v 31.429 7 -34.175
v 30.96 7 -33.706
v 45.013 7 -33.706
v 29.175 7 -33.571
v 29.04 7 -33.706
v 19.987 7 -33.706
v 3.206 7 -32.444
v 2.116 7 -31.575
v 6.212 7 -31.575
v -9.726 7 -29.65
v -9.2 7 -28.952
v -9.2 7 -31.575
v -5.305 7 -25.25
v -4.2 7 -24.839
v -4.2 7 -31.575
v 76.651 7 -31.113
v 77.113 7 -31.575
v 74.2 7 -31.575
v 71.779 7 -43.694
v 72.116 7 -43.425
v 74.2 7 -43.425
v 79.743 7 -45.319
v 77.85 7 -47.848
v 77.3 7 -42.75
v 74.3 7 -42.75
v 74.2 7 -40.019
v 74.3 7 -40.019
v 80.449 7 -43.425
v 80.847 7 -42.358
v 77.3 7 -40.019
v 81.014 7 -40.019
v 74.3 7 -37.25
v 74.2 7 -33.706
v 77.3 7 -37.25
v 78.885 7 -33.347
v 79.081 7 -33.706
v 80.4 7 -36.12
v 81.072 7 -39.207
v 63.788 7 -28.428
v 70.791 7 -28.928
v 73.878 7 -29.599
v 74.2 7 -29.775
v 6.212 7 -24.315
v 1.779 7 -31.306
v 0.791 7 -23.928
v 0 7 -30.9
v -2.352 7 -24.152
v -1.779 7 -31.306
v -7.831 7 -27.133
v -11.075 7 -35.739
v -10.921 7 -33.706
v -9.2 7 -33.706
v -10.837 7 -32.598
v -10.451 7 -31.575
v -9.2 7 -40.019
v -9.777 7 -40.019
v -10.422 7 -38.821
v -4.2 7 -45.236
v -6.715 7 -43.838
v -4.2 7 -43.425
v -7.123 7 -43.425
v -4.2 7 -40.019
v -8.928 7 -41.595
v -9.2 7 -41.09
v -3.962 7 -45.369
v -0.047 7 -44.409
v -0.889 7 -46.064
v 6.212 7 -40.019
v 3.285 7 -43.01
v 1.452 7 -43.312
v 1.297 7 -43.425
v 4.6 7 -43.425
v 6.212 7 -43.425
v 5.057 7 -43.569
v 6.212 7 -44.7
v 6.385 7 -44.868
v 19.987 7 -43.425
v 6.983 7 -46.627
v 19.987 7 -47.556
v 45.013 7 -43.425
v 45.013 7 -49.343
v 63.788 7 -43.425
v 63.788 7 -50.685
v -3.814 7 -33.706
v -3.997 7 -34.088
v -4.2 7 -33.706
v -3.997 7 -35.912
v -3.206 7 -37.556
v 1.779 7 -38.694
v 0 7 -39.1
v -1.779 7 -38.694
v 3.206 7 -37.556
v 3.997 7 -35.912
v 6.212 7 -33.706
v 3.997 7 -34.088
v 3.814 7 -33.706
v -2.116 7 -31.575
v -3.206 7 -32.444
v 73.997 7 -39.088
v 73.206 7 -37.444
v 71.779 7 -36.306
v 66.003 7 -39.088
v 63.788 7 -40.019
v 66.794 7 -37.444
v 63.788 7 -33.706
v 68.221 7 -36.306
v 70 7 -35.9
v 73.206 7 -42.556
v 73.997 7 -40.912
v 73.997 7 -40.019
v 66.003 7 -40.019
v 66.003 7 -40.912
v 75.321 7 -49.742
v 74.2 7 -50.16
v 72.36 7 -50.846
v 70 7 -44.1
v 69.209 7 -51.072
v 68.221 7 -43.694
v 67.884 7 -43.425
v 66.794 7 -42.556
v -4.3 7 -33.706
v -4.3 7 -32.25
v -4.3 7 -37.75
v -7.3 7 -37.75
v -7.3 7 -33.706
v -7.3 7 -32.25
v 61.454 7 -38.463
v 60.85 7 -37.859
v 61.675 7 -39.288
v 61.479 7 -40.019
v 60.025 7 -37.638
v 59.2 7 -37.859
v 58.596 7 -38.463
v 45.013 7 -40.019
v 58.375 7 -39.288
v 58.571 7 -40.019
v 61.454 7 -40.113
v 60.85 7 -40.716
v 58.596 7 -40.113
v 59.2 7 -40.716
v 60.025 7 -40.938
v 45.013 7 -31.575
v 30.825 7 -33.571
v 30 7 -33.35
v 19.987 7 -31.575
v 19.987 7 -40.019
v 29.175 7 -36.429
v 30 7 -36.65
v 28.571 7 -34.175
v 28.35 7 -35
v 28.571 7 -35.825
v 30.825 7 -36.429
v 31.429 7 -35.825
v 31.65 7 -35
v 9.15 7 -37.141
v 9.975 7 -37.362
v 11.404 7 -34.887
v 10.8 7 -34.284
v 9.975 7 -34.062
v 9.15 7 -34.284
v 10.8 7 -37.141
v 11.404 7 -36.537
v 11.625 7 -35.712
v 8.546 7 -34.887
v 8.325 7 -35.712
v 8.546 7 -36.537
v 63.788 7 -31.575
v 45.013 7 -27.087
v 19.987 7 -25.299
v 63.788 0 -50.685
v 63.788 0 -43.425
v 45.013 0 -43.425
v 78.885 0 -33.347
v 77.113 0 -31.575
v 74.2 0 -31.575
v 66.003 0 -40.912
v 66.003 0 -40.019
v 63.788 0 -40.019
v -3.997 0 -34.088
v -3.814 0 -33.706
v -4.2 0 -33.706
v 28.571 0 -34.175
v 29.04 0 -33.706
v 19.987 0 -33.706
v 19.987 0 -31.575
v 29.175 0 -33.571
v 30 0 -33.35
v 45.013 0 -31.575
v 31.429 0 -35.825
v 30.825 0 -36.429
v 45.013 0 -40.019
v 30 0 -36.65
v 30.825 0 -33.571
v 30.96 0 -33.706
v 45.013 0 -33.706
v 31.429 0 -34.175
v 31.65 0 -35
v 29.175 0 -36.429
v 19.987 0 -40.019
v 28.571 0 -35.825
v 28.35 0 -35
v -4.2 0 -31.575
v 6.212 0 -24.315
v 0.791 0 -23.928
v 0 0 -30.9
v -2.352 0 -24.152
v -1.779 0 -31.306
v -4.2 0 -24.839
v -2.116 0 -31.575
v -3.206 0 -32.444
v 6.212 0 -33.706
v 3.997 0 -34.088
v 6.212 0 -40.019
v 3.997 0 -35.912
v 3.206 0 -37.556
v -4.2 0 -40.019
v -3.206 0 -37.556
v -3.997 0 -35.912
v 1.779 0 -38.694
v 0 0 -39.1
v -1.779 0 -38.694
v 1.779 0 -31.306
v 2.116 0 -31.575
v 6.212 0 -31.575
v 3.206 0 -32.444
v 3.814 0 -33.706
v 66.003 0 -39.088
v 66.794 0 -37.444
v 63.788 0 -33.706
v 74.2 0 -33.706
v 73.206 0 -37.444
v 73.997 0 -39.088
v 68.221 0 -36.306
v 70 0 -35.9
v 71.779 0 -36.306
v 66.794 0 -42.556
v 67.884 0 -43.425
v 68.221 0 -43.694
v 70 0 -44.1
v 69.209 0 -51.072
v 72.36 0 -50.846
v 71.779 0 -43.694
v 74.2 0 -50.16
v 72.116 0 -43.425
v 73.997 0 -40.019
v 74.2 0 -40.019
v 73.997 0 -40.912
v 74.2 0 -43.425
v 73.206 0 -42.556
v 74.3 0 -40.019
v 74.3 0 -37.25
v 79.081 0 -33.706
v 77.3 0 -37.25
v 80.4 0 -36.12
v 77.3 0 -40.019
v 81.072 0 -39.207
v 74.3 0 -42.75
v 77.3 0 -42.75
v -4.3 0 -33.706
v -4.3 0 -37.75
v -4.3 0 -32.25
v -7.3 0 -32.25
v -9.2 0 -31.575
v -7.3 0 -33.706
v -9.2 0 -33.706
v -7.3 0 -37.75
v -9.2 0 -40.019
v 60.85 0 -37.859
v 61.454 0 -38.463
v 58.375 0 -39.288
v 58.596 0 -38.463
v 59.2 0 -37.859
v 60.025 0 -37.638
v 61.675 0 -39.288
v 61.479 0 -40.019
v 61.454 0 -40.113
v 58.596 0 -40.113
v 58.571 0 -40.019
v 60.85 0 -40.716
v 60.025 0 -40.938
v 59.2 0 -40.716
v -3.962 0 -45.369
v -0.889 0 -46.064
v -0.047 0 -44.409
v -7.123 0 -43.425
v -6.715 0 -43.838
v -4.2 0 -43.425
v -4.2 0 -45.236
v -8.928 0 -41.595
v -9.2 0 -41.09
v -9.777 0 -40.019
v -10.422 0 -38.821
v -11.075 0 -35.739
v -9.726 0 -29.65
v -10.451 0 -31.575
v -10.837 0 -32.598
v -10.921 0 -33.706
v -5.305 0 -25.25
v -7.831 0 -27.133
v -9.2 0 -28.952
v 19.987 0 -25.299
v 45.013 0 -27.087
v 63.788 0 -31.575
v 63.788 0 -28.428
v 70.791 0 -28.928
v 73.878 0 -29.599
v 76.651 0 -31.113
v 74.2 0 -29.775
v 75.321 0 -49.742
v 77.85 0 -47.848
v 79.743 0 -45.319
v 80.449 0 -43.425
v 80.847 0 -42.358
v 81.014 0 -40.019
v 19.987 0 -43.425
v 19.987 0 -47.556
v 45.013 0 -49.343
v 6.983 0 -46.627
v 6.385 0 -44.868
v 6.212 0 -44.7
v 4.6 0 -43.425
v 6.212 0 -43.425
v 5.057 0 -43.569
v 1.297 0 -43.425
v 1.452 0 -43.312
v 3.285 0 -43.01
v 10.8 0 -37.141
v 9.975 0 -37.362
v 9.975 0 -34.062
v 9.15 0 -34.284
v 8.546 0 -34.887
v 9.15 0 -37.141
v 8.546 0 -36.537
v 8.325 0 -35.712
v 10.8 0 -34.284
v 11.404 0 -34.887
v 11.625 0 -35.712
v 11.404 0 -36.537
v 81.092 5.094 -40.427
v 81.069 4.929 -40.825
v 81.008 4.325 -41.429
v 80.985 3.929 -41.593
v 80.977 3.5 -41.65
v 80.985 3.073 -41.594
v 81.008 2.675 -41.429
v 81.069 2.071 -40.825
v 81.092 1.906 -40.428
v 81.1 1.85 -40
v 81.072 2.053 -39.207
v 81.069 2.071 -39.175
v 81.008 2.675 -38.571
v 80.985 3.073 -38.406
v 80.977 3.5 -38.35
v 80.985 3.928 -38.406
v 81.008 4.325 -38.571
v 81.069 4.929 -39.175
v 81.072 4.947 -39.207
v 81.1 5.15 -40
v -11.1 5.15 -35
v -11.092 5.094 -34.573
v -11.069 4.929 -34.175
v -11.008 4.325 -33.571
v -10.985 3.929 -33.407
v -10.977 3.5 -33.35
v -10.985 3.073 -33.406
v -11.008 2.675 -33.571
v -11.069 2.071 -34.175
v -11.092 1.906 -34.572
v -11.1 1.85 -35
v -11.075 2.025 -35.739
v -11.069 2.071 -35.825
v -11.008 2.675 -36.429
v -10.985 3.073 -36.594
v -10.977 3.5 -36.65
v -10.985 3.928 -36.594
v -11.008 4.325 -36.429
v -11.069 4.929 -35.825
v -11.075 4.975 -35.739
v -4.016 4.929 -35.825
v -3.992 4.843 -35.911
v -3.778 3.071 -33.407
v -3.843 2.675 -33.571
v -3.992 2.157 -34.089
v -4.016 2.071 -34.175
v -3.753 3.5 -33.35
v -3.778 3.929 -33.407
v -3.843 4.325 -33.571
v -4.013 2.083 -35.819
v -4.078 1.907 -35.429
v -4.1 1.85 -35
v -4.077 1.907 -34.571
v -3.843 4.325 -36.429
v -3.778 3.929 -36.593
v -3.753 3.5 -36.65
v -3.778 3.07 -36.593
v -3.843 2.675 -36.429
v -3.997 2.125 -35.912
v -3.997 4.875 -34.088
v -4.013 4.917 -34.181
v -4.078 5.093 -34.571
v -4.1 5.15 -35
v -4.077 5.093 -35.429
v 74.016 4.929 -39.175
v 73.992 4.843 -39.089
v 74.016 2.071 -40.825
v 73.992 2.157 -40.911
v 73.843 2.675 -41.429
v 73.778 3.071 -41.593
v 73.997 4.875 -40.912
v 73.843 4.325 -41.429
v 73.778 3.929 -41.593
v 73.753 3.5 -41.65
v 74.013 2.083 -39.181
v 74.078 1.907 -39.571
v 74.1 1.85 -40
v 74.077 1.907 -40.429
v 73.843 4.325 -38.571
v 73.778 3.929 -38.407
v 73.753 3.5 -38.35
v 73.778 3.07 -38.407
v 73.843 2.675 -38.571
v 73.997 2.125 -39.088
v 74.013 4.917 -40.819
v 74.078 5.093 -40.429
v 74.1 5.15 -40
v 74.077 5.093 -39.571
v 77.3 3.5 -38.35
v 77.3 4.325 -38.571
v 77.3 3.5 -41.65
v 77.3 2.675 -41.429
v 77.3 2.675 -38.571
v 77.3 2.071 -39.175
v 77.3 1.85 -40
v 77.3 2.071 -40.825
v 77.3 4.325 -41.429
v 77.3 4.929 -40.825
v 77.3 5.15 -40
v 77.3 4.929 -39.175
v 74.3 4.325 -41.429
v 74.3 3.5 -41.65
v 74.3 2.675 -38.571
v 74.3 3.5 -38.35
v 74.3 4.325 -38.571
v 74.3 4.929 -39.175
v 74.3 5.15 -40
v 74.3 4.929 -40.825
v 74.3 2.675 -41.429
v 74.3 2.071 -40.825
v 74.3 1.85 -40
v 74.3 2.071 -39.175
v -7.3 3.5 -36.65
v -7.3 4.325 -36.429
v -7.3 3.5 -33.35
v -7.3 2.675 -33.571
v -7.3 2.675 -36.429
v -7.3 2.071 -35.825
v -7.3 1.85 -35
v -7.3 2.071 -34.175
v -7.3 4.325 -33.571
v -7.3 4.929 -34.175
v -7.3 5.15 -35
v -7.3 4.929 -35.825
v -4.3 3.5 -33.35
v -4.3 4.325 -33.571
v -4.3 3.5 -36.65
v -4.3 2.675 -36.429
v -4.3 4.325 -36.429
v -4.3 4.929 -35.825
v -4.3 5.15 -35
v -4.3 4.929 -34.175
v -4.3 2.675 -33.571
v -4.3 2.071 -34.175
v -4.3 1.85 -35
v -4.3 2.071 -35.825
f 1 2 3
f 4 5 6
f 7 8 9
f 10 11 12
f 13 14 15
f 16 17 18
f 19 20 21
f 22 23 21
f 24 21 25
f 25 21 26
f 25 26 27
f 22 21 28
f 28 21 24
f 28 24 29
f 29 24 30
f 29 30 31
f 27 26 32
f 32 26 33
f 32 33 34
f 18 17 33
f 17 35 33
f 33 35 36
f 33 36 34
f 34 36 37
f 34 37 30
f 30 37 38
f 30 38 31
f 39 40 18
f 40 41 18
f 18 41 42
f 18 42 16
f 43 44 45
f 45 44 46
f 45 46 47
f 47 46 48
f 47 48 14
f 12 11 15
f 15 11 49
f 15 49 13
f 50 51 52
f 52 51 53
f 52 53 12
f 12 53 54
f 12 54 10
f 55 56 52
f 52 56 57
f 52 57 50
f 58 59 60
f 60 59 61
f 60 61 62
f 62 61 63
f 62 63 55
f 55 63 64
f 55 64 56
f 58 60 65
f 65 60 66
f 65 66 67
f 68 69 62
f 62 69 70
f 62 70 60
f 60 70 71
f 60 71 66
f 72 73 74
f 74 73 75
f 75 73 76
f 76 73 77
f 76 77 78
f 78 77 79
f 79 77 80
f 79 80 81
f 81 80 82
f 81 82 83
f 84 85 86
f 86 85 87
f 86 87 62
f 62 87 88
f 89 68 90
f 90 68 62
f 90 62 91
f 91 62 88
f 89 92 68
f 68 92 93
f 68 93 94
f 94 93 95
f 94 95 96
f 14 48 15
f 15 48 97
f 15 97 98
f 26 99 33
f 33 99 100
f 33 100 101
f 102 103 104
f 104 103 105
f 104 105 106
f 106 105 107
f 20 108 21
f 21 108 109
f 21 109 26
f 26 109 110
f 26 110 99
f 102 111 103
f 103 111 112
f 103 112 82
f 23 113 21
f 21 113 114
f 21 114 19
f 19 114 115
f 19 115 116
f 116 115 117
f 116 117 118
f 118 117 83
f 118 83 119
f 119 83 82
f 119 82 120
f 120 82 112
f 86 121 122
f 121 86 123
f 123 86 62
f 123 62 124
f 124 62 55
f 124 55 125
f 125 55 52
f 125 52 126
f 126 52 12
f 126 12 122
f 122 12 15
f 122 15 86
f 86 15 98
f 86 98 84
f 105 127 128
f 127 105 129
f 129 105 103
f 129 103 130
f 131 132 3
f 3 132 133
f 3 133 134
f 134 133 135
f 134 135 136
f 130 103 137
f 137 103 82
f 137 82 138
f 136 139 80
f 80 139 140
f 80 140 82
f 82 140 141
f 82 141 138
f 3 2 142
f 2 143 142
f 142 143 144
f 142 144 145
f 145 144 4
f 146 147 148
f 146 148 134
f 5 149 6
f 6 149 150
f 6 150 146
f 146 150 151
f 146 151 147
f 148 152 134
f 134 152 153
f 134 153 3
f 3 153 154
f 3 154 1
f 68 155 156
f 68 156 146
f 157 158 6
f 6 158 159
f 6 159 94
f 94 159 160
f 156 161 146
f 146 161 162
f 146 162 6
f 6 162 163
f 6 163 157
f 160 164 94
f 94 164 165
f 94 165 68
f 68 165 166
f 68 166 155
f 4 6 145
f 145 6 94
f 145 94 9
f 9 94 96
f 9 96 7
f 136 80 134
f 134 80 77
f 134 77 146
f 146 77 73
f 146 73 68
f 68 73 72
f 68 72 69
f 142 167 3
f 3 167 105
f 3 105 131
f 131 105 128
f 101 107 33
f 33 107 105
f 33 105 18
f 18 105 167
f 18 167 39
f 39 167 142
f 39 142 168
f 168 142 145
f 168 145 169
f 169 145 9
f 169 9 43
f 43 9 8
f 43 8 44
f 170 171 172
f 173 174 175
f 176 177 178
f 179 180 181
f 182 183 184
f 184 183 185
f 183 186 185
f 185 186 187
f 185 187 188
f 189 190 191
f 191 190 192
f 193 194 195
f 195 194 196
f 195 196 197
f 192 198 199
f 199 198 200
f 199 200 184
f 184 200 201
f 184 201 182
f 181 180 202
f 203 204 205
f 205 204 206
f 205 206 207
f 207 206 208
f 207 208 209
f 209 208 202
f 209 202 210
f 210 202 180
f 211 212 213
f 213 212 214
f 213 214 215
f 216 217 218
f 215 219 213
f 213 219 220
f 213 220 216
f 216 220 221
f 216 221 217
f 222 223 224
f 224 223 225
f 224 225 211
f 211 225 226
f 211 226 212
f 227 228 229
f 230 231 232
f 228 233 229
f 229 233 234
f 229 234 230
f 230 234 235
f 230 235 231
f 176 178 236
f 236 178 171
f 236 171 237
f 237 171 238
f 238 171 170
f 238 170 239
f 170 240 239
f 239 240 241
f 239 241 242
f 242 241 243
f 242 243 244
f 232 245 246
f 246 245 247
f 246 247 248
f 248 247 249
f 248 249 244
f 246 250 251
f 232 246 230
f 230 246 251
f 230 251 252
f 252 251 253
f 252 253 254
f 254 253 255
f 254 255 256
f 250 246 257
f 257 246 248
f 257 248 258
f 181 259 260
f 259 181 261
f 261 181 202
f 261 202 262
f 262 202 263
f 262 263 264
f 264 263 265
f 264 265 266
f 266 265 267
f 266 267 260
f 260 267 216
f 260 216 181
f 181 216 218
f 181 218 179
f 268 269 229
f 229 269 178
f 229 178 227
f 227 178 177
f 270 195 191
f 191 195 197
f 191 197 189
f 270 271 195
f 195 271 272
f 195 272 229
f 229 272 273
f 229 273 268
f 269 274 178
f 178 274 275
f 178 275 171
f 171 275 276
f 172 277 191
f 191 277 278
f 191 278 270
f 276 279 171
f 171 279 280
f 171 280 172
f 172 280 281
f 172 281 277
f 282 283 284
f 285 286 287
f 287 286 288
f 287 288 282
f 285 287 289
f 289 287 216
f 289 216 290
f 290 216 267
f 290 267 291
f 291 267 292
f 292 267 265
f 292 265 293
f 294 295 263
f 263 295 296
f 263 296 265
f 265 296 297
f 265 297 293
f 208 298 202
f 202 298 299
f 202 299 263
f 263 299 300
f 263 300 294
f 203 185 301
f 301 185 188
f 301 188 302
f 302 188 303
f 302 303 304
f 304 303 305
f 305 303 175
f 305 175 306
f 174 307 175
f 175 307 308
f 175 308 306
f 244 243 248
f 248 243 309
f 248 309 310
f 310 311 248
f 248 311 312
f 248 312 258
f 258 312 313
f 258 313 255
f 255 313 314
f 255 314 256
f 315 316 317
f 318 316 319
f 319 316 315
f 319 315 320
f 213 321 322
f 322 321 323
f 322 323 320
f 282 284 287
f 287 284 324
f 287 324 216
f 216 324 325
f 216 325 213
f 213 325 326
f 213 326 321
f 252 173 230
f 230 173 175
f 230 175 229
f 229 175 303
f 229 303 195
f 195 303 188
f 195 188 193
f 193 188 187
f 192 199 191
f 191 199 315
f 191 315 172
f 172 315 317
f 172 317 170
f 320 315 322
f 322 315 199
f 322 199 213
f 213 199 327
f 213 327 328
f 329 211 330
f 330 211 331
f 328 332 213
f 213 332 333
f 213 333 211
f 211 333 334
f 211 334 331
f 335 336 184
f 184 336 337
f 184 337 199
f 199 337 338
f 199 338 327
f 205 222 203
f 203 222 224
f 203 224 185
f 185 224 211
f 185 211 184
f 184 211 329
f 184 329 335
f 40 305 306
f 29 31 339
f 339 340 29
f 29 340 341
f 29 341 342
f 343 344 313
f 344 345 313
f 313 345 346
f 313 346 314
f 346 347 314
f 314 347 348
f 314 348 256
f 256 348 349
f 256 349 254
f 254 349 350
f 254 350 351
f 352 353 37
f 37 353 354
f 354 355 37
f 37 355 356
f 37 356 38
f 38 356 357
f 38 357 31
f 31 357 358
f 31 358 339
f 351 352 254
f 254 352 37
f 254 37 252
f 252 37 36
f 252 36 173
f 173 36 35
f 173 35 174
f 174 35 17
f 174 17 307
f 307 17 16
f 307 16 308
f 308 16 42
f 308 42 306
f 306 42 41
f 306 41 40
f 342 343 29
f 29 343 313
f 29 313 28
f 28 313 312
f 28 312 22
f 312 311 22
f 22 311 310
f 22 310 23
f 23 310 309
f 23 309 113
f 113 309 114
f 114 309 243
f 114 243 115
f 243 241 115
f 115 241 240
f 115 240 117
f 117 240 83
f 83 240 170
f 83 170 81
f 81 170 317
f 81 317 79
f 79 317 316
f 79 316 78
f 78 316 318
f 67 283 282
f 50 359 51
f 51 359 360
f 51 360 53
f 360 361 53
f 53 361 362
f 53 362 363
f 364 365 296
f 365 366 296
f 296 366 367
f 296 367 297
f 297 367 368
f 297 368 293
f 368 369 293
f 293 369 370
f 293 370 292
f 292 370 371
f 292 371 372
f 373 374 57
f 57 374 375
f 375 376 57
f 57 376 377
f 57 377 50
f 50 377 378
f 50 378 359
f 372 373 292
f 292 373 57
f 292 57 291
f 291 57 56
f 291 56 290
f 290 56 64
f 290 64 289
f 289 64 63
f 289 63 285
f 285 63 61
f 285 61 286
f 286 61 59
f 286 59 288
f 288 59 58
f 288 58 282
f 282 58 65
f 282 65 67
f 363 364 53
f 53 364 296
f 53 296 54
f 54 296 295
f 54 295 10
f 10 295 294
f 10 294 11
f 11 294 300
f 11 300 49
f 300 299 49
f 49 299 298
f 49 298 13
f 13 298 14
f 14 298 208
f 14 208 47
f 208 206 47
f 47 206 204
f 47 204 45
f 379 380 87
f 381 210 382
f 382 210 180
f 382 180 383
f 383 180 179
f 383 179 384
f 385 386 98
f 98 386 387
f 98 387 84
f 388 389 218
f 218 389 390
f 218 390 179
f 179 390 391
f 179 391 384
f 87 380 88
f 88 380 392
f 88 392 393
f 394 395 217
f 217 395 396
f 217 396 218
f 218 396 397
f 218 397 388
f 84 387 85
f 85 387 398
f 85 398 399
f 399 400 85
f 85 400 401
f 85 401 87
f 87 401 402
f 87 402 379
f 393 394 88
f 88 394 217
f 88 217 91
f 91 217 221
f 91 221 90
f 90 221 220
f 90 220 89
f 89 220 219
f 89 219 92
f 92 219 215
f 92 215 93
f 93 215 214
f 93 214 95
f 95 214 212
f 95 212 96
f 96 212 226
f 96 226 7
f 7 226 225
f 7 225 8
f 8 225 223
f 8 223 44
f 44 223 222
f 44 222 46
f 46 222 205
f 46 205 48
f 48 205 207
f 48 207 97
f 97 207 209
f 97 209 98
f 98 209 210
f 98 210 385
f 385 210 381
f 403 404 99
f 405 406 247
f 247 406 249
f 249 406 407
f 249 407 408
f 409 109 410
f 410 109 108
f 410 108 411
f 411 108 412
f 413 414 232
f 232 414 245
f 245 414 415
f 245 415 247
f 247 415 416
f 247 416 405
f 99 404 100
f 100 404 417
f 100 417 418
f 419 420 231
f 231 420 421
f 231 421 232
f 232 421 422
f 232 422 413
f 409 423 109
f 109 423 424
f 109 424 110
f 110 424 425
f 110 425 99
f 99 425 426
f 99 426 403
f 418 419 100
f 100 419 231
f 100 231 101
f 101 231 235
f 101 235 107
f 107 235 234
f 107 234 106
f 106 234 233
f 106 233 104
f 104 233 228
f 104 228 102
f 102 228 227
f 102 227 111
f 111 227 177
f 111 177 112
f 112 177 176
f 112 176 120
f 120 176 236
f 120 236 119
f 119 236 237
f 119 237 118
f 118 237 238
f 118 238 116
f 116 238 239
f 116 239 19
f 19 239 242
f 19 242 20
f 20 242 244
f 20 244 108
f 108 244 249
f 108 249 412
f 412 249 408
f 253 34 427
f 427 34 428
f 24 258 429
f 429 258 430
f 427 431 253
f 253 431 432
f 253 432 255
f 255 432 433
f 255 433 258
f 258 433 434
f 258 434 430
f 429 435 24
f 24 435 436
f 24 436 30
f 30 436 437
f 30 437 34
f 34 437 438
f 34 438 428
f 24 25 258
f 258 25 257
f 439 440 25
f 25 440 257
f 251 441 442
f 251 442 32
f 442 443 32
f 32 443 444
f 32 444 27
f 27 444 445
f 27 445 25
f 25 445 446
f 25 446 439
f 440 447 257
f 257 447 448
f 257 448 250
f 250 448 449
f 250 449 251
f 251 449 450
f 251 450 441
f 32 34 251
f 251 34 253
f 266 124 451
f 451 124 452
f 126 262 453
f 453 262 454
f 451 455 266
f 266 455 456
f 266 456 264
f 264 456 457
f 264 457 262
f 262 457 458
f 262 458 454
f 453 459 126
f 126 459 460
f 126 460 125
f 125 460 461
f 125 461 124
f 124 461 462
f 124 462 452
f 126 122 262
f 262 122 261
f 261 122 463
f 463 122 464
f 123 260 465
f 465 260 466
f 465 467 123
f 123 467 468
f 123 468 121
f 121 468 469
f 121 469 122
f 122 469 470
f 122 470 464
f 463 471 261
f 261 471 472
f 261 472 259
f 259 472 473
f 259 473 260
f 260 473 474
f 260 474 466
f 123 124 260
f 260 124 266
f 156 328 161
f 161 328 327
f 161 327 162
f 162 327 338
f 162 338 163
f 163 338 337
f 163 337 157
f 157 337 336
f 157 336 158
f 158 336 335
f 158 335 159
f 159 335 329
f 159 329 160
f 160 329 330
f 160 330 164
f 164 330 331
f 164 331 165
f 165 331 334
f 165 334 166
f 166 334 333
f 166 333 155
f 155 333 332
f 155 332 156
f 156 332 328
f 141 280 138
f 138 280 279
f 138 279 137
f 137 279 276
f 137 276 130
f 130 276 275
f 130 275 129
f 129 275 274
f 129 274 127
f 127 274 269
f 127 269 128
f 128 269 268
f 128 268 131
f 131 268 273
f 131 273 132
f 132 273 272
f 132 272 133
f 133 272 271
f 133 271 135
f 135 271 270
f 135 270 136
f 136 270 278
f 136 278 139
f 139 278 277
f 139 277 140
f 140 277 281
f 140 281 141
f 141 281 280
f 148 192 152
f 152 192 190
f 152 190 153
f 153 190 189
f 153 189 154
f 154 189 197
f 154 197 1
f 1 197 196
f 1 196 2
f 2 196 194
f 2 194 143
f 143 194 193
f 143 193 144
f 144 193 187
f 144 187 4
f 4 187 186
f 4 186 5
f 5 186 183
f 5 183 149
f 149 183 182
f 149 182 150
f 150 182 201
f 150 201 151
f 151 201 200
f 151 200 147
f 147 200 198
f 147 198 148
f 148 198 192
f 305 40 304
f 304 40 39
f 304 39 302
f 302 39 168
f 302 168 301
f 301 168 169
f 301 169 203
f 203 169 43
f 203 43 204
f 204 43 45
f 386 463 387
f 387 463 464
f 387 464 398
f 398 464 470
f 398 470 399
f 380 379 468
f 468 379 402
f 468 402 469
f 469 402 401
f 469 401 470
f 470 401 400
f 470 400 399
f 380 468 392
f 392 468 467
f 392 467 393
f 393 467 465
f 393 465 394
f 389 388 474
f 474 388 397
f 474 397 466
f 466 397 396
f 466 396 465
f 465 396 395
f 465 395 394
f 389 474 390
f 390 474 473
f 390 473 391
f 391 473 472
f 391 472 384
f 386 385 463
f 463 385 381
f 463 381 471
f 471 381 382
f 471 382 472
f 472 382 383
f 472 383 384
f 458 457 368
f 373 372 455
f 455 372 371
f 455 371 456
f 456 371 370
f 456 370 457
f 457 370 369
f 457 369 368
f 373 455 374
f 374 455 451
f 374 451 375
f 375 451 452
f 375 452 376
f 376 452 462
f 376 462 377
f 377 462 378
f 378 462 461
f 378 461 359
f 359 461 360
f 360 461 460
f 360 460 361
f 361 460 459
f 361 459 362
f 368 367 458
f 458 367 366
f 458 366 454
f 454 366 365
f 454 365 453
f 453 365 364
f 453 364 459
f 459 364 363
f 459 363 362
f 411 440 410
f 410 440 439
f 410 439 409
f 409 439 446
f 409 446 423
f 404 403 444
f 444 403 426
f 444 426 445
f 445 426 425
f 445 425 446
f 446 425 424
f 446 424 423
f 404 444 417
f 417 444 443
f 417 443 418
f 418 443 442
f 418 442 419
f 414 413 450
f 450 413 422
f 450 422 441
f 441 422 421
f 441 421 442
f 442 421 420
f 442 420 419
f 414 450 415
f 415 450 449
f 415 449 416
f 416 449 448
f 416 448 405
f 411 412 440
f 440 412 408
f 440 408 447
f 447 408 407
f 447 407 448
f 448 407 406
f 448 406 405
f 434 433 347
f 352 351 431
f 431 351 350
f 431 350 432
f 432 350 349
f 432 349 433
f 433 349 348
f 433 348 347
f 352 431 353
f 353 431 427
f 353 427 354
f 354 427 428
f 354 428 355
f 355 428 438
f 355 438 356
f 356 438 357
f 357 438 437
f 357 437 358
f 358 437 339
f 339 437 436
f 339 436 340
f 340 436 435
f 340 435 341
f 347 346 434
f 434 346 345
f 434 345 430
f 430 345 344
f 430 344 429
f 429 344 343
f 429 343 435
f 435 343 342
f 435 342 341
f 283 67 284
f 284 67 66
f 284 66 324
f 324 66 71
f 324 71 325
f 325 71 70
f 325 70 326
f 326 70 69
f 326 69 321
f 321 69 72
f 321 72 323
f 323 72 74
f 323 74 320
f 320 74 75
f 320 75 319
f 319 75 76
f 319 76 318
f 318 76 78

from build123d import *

# Parameters (mm, degrees)
ESBO_O2_R                  = 4.1
ESBO_O2_R_2                = 1.65
ESBO_O2_W                  = 3
ESBO_O2_H                  = 5.5
RESSALTO_EXTRUS_O1_DEPTH   = 7
ESBO_O3_W                  = 117.766713874
ESBO_O3_H                  = 105.694955048
CORTE_EXTRUS_O1_DEPTH      = 1
CORTE_EXTRUS_O1_DEPTH_BACK = 8
ESBO_O4_R                  = 1.65
CORTE_EXTRUS_O2_DEPTH      = 7.8
CORTE_EXTRUS_O2_DEPTH_BACK = 2
ESBO_O5_R                  = 1.65
CORTE_EXTRUS_O3_DEPTH      = 10
CORTE_EXTRUS_O3_DEPTH_BACK = 2
ESBO_O6_R                  = 4
CORTE_EXTRUS_O4_DEPTH      = 1.0000001
CORTE_EXTRUS_O4_DEPTH_BACK = 8.0000001


with BuildPart() as part:
    # Esboço2 → Ressalto-extrusão1 (new body)
    with BuildSketch(Plane(origin=(0, 0, 0), x_dir=(1, 0, 0), z_dir=(0, 1, 0))):
        with BuildLine():
            Line((-0.790842255, 46.071791568), (69.209157745, 51.071791568))
            ThreePointArc((69.209157745, 51.071791568), (77.564114323, 48.123679863), (81.1, 40))
            Line((81.1, 40), (81.1, -40))
            ThreePointArc((81.1, -40), (77.564114323, -48.123679863), (69.209157745, -51.071791568))
            Line((69.209157745, -51.071791568), (-0.790842255, -46.071791568))
            ThreePointArc((-0.790842255, -46.071791568), (-8.123679863, -42.564114323), (-11.1, -35))
            Line((-11.1, -35), (-11.1, 35))
            ThreePointArc((-11.1, 35), (-8.123679863, 42.564114323), (-0.790842255, 46.071791568))
        make_face()
        with Locations((0, 35)):
            Circle(ESBO_O2_R, mode=Mode.SUBTRACT)
        with Locations((70, 40)):
            Circle(ESBO_O2_R, mode=Mode.SUBTRACT)
        with Locations((70, -40)):
            Circle(ESBO_O2_R, mode=Mode.SUBTRACT)
        with Locations((0, -35)):
            Circle(ESBO_O2_R, mode=Mode.SUBTRACT)
        with Locations((9.974586998, 35.7124705)):
            Circle(ESBO_O2_R_2, mode=Mode.SUBTRACT)
        with Locations((60.025413002, 39.2875295)):
            Circle(ESBO_O2_R_2, mode=Mode.SUBTRACT)
        with Locations((9.974586998, -35.7124705)):
            Circle(ESBO_O2_R_2, mode=Mode.SUBTRACT)
        with Locations((60.025413002, -39.2875295)):
            Circle(ESBO_O2_R_2, mode=Mode.SUBTRACT)
        with Locations((30, 35)):
            Circle(ESBO_O2_R_2, mode=Mode.SUBTRACT)
        with Locations((30, -35)):
            Circle(ESBO_O2_R_2, mode=Mode.SUBTRACT)
        with Locations((-5.8, 35)):
            Rectangle(ESBO_O2_W, ESBO_O2_H, mode=Mode.SUBTRACT)
        with Locations((75.8, 40)):
            Rectangle(ESBO_O2_W, ESBO_O2_H, mode=Mode.SUBTRACT)
        with Locations((75.8, -40)):
            Rectangle(ESBO_O2_W, ESBO_O2_H, mode=Mode.SUBTRACT)
        with Locations((-5.8, -35)):
            Rectangle(ESBO_O2_W, ESBO_O2_H, mode=Mode.SUBTRACT)
    extrude(amount=RESSALTO_EXTRUS_O1_DEPTH)

    # Esboço3 → Corte-extrusão1 (cut, two sides)
    with BuildSketch(Plane(origin=(0, 7, 0), x_dir=(1, 0, 0), z_dir=(0, 1, 0))) as corte_extrus_o1_sk:
        with Locations((40.401748759, 0)):
            Rectangle(ESBO_O3_W, ESBO_O3_H)
        with BuildLine():
            Line((0.790842255, 23.928208432), (70.790842255, 28.928208432))
            ThreePointArc((70.790842255, 28.928208432), (81.071791568, 40.790842255), (69.209157745, 51.071791568))
            Line((69.209157745, 51.071791568), (-0.790842255, 46.071791568))
            ThreePointArc((-0.790842255, 46.071791568), (-11.071791568, 34.209157745), (0.790842255, 23.928208432))
        make_face(mode=Mode.SUBTRACT)
    extrude(amount=CORTE_EXTRUS_O1_DEPTH, mode=Mode.SUBTRACT)
    extrude(corte_extrus_o1_sk.sketch, amount=-CORTE_EXTRUS_O1_DEPTH_BACK, mode=Mode.SUBTRACT)

    # Esboço4 → Corte-extrusão2 (cut, two sides)
    with BuildSketch(Plane.ZY.offset(4.3)) as corte_extrus_o2_sk:
        with Locations((-35, 3.5)):
            Circle(ESBO_O4_R)
    extrude(amount=CORTE_EXTRUS_O2_DEPTH, mode=Mode.SUBTRACT)
    extrude(corte_extrus_o2_sk.sketch, amount=-CORTE_EXTRUS_O2_DEPTH_BACK, mode=Mode.SUBTRACT)

    # Esboço5 → Corte-extrusão3 (cut, two sides)
    with BuildSketch(Plane(origin=(74.3, 0, 0), x_dir=(0, 0, -1), z_dir=(1, 0, 0))) as corte_extrus_o3_sk:
        with Locations((40, 3.5)):
            Circle(ESBO_O5_R)
    extrude(amount=CORTE_EXTRUS_O3_DEPTH, mode=Mode.SUBTRACT)
    extrude(corte_extrus_o3_sk.sketch, amount=-CORTE_EXTRUS_O3_DEPTH_BACK, mode=Mode.SUBTRACT)

    # Esboço6 → Corte-extrusão4 (cut, two sides)
    with BuildSketch(Plane(origin=(0, 7, 0), x_dir=(1, 0, 0), z_dir=(0, 1, 0))) as corte_extrus_o4_sk:
        with Locations((3, 47)):
            Circle(ESBO_O6_R)
    extrude(amount=CORTE_EXTRUS_O4_DEPTH, mode=Mode.SUBTRACT)
    extrude(corte_extrus_o4_sk.sketch, amount=-CORTE_EXTRUS_O4_DEPTH_BACK, mode=Mode.SUBTRACT)


solid = part.part
